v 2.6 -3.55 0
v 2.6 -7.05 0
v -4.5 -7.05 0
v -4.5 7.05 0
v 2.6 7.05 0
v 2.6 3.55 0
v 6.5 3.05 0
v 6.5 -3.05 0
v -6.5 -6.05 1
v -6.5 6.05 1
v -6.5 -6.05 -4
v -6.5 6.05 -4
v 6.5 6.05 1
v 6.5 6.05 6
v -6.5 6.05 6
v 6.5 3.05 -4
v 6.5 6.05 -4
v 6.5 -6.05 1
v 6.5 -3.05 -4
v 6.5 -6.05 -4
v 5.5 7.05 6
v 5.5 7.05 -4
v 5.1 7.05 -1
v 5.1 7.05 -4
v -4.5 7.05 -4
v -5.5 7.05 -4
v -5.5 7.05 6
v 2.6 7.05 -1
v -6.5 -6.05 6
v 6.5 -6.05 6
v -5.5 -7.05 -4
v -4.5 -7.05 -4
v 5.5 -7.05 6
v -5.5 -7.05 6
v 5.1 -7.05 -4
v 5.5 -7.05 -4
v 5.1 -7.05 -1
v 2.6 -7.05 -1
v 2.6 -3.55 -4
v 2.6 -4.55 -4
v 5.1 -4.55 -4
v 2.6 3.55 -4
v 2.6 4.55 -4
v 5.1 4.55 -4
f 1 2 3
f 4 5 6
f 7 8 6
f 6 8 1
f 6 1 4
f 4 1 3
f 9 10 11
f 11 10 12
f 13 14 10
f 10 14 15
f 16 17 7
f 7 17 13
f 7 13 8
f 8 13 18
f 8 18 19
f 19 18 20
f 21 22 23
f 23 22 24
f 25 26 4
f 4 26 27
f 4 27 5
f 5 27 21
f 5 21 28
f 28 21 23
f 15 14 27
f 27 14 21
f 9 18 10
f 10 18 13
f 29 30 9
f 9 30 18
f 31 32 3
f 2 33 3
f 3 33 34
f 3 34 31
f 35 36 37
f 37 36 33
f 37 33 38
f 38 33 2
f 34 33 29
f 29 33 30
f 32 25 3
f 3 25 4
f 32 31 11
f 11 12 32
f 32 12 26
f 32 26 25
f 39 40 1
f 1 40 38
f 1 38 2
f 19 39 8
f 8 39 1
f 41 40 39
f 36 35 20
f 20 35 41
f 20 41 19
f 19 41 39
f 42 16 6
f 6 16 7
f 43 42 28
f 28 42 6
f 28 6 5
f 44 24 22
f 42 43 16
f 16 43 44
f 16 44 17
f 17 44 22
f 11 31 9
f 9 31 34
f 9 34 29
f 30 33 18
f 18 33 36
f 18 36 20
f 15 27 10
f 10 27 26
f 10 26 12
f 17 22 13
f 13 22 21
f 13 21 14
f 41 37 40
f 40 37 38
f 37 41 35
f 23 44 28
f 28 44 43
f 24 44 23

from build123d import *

# Parameters (mm, degrees)
SKETCH1_W             = 13
SKETCH1_H             = 1
BOSS_EXTRUDE1_DEPTH   = 6
BOSS_EXTRUDE1_2_DEPTH = 6
SKETCH1_3_W           = 13
SKETCH1_3_H           = 12.1
BOSS_EXTRUDE2_DEPTH   = 1
SKETCH2_W             = 2
SKETCH2_H             = 14.1
BOSS_EXTRUDE3_DEPTH   = 4
CHAMFER1_SIZE         = 1
CUT_EXTRUDE1_DEPTH    = 2.5


with BuildPart() as part:
    # Sketch1 → Boss-Extrude1 (new body)
    with BuildSketch(Plane.XY):
        with Locations((0, 6.55)):
            Rectangle(SKETCH1_W, SKETCH1_H)
    extrude(amount=BOSS_EXTRUDE1_DEPTH)



with BuildPart() as body_2:
    # Sketch1 → Boss-Extrude1 2 (new body)
    with BuildSketch(Plane.XY):
        with Locations((0, -6.55)):
            Rectangle(SKETCH1_W, SKETCH1_H)
    extrude(amount=BOSS_EXTRUDE1_2_DEPTH)


with BuildPart() as part_1:
    add(part.part)

    add(body_2.part)  # Boss-Extrude2 merges body 2
    # Sketch1<3> → Boss-Extrude2 (add)
    with BuildSketch(Plane.XY):
        Rectangle(SKETCH1_3_W, SKETCH1_3_H)
    extrude(amount=BOSS_EXTRUDE2_DEPTH)

    # Sketch2 → Boss-Extrude3 (add)
    with BuildSketch(Plane(origin=(0, 0, 0), x_dir=(-1, 0, 0), z_dir=(0, 0, -1))):
        with Locations((5.5, 0)):
            Rectangle(SKETCH2_W, SKETCH2_H)
        Polygon((-6.5, -3.05), (-2.6, -3.55), (-2.6, -7.05), (-6.5, -7.05), align=None)
        Polygon((-6.5, 7.05), (-2.6, 7.05), (-2.6, 3.55), (-6.5, 3.05), align=None)
    extrude(amount=BOSS_EXTRUDE3_DEPTH)

    # Chamfer1
    chamfer1_edges = [part_1.edges().sort_by_distance(p)[0] for p in [
        (-6.5, -7.05, 1),
        (6.5, -7.05, 1),
        (-6.5, 7.05, 1),
        (6.5, 7.05, 1),
    ]]
    chamfer(chamfer1_edges, length=CHAMFER1_SIZE - 0.0001)  # a hair under: the kernel refuses the full size

    # Sketch3 → Cut-Extrude1 (cut)
    with BuildSketch(Plane.ZY.offset(-2.6)):
        Polygon((-1, -7.05), (-4, -4.55), (-4, -7.05), align=None)
        Polygon((-1, 7.05), (-4, 4.55), (-4, 7.05), align=None)
    extrude(amount=-CUT_EXTRUDE1_DEPTH, mode=Mode.SUBTRACT)


solid = part_1.part
